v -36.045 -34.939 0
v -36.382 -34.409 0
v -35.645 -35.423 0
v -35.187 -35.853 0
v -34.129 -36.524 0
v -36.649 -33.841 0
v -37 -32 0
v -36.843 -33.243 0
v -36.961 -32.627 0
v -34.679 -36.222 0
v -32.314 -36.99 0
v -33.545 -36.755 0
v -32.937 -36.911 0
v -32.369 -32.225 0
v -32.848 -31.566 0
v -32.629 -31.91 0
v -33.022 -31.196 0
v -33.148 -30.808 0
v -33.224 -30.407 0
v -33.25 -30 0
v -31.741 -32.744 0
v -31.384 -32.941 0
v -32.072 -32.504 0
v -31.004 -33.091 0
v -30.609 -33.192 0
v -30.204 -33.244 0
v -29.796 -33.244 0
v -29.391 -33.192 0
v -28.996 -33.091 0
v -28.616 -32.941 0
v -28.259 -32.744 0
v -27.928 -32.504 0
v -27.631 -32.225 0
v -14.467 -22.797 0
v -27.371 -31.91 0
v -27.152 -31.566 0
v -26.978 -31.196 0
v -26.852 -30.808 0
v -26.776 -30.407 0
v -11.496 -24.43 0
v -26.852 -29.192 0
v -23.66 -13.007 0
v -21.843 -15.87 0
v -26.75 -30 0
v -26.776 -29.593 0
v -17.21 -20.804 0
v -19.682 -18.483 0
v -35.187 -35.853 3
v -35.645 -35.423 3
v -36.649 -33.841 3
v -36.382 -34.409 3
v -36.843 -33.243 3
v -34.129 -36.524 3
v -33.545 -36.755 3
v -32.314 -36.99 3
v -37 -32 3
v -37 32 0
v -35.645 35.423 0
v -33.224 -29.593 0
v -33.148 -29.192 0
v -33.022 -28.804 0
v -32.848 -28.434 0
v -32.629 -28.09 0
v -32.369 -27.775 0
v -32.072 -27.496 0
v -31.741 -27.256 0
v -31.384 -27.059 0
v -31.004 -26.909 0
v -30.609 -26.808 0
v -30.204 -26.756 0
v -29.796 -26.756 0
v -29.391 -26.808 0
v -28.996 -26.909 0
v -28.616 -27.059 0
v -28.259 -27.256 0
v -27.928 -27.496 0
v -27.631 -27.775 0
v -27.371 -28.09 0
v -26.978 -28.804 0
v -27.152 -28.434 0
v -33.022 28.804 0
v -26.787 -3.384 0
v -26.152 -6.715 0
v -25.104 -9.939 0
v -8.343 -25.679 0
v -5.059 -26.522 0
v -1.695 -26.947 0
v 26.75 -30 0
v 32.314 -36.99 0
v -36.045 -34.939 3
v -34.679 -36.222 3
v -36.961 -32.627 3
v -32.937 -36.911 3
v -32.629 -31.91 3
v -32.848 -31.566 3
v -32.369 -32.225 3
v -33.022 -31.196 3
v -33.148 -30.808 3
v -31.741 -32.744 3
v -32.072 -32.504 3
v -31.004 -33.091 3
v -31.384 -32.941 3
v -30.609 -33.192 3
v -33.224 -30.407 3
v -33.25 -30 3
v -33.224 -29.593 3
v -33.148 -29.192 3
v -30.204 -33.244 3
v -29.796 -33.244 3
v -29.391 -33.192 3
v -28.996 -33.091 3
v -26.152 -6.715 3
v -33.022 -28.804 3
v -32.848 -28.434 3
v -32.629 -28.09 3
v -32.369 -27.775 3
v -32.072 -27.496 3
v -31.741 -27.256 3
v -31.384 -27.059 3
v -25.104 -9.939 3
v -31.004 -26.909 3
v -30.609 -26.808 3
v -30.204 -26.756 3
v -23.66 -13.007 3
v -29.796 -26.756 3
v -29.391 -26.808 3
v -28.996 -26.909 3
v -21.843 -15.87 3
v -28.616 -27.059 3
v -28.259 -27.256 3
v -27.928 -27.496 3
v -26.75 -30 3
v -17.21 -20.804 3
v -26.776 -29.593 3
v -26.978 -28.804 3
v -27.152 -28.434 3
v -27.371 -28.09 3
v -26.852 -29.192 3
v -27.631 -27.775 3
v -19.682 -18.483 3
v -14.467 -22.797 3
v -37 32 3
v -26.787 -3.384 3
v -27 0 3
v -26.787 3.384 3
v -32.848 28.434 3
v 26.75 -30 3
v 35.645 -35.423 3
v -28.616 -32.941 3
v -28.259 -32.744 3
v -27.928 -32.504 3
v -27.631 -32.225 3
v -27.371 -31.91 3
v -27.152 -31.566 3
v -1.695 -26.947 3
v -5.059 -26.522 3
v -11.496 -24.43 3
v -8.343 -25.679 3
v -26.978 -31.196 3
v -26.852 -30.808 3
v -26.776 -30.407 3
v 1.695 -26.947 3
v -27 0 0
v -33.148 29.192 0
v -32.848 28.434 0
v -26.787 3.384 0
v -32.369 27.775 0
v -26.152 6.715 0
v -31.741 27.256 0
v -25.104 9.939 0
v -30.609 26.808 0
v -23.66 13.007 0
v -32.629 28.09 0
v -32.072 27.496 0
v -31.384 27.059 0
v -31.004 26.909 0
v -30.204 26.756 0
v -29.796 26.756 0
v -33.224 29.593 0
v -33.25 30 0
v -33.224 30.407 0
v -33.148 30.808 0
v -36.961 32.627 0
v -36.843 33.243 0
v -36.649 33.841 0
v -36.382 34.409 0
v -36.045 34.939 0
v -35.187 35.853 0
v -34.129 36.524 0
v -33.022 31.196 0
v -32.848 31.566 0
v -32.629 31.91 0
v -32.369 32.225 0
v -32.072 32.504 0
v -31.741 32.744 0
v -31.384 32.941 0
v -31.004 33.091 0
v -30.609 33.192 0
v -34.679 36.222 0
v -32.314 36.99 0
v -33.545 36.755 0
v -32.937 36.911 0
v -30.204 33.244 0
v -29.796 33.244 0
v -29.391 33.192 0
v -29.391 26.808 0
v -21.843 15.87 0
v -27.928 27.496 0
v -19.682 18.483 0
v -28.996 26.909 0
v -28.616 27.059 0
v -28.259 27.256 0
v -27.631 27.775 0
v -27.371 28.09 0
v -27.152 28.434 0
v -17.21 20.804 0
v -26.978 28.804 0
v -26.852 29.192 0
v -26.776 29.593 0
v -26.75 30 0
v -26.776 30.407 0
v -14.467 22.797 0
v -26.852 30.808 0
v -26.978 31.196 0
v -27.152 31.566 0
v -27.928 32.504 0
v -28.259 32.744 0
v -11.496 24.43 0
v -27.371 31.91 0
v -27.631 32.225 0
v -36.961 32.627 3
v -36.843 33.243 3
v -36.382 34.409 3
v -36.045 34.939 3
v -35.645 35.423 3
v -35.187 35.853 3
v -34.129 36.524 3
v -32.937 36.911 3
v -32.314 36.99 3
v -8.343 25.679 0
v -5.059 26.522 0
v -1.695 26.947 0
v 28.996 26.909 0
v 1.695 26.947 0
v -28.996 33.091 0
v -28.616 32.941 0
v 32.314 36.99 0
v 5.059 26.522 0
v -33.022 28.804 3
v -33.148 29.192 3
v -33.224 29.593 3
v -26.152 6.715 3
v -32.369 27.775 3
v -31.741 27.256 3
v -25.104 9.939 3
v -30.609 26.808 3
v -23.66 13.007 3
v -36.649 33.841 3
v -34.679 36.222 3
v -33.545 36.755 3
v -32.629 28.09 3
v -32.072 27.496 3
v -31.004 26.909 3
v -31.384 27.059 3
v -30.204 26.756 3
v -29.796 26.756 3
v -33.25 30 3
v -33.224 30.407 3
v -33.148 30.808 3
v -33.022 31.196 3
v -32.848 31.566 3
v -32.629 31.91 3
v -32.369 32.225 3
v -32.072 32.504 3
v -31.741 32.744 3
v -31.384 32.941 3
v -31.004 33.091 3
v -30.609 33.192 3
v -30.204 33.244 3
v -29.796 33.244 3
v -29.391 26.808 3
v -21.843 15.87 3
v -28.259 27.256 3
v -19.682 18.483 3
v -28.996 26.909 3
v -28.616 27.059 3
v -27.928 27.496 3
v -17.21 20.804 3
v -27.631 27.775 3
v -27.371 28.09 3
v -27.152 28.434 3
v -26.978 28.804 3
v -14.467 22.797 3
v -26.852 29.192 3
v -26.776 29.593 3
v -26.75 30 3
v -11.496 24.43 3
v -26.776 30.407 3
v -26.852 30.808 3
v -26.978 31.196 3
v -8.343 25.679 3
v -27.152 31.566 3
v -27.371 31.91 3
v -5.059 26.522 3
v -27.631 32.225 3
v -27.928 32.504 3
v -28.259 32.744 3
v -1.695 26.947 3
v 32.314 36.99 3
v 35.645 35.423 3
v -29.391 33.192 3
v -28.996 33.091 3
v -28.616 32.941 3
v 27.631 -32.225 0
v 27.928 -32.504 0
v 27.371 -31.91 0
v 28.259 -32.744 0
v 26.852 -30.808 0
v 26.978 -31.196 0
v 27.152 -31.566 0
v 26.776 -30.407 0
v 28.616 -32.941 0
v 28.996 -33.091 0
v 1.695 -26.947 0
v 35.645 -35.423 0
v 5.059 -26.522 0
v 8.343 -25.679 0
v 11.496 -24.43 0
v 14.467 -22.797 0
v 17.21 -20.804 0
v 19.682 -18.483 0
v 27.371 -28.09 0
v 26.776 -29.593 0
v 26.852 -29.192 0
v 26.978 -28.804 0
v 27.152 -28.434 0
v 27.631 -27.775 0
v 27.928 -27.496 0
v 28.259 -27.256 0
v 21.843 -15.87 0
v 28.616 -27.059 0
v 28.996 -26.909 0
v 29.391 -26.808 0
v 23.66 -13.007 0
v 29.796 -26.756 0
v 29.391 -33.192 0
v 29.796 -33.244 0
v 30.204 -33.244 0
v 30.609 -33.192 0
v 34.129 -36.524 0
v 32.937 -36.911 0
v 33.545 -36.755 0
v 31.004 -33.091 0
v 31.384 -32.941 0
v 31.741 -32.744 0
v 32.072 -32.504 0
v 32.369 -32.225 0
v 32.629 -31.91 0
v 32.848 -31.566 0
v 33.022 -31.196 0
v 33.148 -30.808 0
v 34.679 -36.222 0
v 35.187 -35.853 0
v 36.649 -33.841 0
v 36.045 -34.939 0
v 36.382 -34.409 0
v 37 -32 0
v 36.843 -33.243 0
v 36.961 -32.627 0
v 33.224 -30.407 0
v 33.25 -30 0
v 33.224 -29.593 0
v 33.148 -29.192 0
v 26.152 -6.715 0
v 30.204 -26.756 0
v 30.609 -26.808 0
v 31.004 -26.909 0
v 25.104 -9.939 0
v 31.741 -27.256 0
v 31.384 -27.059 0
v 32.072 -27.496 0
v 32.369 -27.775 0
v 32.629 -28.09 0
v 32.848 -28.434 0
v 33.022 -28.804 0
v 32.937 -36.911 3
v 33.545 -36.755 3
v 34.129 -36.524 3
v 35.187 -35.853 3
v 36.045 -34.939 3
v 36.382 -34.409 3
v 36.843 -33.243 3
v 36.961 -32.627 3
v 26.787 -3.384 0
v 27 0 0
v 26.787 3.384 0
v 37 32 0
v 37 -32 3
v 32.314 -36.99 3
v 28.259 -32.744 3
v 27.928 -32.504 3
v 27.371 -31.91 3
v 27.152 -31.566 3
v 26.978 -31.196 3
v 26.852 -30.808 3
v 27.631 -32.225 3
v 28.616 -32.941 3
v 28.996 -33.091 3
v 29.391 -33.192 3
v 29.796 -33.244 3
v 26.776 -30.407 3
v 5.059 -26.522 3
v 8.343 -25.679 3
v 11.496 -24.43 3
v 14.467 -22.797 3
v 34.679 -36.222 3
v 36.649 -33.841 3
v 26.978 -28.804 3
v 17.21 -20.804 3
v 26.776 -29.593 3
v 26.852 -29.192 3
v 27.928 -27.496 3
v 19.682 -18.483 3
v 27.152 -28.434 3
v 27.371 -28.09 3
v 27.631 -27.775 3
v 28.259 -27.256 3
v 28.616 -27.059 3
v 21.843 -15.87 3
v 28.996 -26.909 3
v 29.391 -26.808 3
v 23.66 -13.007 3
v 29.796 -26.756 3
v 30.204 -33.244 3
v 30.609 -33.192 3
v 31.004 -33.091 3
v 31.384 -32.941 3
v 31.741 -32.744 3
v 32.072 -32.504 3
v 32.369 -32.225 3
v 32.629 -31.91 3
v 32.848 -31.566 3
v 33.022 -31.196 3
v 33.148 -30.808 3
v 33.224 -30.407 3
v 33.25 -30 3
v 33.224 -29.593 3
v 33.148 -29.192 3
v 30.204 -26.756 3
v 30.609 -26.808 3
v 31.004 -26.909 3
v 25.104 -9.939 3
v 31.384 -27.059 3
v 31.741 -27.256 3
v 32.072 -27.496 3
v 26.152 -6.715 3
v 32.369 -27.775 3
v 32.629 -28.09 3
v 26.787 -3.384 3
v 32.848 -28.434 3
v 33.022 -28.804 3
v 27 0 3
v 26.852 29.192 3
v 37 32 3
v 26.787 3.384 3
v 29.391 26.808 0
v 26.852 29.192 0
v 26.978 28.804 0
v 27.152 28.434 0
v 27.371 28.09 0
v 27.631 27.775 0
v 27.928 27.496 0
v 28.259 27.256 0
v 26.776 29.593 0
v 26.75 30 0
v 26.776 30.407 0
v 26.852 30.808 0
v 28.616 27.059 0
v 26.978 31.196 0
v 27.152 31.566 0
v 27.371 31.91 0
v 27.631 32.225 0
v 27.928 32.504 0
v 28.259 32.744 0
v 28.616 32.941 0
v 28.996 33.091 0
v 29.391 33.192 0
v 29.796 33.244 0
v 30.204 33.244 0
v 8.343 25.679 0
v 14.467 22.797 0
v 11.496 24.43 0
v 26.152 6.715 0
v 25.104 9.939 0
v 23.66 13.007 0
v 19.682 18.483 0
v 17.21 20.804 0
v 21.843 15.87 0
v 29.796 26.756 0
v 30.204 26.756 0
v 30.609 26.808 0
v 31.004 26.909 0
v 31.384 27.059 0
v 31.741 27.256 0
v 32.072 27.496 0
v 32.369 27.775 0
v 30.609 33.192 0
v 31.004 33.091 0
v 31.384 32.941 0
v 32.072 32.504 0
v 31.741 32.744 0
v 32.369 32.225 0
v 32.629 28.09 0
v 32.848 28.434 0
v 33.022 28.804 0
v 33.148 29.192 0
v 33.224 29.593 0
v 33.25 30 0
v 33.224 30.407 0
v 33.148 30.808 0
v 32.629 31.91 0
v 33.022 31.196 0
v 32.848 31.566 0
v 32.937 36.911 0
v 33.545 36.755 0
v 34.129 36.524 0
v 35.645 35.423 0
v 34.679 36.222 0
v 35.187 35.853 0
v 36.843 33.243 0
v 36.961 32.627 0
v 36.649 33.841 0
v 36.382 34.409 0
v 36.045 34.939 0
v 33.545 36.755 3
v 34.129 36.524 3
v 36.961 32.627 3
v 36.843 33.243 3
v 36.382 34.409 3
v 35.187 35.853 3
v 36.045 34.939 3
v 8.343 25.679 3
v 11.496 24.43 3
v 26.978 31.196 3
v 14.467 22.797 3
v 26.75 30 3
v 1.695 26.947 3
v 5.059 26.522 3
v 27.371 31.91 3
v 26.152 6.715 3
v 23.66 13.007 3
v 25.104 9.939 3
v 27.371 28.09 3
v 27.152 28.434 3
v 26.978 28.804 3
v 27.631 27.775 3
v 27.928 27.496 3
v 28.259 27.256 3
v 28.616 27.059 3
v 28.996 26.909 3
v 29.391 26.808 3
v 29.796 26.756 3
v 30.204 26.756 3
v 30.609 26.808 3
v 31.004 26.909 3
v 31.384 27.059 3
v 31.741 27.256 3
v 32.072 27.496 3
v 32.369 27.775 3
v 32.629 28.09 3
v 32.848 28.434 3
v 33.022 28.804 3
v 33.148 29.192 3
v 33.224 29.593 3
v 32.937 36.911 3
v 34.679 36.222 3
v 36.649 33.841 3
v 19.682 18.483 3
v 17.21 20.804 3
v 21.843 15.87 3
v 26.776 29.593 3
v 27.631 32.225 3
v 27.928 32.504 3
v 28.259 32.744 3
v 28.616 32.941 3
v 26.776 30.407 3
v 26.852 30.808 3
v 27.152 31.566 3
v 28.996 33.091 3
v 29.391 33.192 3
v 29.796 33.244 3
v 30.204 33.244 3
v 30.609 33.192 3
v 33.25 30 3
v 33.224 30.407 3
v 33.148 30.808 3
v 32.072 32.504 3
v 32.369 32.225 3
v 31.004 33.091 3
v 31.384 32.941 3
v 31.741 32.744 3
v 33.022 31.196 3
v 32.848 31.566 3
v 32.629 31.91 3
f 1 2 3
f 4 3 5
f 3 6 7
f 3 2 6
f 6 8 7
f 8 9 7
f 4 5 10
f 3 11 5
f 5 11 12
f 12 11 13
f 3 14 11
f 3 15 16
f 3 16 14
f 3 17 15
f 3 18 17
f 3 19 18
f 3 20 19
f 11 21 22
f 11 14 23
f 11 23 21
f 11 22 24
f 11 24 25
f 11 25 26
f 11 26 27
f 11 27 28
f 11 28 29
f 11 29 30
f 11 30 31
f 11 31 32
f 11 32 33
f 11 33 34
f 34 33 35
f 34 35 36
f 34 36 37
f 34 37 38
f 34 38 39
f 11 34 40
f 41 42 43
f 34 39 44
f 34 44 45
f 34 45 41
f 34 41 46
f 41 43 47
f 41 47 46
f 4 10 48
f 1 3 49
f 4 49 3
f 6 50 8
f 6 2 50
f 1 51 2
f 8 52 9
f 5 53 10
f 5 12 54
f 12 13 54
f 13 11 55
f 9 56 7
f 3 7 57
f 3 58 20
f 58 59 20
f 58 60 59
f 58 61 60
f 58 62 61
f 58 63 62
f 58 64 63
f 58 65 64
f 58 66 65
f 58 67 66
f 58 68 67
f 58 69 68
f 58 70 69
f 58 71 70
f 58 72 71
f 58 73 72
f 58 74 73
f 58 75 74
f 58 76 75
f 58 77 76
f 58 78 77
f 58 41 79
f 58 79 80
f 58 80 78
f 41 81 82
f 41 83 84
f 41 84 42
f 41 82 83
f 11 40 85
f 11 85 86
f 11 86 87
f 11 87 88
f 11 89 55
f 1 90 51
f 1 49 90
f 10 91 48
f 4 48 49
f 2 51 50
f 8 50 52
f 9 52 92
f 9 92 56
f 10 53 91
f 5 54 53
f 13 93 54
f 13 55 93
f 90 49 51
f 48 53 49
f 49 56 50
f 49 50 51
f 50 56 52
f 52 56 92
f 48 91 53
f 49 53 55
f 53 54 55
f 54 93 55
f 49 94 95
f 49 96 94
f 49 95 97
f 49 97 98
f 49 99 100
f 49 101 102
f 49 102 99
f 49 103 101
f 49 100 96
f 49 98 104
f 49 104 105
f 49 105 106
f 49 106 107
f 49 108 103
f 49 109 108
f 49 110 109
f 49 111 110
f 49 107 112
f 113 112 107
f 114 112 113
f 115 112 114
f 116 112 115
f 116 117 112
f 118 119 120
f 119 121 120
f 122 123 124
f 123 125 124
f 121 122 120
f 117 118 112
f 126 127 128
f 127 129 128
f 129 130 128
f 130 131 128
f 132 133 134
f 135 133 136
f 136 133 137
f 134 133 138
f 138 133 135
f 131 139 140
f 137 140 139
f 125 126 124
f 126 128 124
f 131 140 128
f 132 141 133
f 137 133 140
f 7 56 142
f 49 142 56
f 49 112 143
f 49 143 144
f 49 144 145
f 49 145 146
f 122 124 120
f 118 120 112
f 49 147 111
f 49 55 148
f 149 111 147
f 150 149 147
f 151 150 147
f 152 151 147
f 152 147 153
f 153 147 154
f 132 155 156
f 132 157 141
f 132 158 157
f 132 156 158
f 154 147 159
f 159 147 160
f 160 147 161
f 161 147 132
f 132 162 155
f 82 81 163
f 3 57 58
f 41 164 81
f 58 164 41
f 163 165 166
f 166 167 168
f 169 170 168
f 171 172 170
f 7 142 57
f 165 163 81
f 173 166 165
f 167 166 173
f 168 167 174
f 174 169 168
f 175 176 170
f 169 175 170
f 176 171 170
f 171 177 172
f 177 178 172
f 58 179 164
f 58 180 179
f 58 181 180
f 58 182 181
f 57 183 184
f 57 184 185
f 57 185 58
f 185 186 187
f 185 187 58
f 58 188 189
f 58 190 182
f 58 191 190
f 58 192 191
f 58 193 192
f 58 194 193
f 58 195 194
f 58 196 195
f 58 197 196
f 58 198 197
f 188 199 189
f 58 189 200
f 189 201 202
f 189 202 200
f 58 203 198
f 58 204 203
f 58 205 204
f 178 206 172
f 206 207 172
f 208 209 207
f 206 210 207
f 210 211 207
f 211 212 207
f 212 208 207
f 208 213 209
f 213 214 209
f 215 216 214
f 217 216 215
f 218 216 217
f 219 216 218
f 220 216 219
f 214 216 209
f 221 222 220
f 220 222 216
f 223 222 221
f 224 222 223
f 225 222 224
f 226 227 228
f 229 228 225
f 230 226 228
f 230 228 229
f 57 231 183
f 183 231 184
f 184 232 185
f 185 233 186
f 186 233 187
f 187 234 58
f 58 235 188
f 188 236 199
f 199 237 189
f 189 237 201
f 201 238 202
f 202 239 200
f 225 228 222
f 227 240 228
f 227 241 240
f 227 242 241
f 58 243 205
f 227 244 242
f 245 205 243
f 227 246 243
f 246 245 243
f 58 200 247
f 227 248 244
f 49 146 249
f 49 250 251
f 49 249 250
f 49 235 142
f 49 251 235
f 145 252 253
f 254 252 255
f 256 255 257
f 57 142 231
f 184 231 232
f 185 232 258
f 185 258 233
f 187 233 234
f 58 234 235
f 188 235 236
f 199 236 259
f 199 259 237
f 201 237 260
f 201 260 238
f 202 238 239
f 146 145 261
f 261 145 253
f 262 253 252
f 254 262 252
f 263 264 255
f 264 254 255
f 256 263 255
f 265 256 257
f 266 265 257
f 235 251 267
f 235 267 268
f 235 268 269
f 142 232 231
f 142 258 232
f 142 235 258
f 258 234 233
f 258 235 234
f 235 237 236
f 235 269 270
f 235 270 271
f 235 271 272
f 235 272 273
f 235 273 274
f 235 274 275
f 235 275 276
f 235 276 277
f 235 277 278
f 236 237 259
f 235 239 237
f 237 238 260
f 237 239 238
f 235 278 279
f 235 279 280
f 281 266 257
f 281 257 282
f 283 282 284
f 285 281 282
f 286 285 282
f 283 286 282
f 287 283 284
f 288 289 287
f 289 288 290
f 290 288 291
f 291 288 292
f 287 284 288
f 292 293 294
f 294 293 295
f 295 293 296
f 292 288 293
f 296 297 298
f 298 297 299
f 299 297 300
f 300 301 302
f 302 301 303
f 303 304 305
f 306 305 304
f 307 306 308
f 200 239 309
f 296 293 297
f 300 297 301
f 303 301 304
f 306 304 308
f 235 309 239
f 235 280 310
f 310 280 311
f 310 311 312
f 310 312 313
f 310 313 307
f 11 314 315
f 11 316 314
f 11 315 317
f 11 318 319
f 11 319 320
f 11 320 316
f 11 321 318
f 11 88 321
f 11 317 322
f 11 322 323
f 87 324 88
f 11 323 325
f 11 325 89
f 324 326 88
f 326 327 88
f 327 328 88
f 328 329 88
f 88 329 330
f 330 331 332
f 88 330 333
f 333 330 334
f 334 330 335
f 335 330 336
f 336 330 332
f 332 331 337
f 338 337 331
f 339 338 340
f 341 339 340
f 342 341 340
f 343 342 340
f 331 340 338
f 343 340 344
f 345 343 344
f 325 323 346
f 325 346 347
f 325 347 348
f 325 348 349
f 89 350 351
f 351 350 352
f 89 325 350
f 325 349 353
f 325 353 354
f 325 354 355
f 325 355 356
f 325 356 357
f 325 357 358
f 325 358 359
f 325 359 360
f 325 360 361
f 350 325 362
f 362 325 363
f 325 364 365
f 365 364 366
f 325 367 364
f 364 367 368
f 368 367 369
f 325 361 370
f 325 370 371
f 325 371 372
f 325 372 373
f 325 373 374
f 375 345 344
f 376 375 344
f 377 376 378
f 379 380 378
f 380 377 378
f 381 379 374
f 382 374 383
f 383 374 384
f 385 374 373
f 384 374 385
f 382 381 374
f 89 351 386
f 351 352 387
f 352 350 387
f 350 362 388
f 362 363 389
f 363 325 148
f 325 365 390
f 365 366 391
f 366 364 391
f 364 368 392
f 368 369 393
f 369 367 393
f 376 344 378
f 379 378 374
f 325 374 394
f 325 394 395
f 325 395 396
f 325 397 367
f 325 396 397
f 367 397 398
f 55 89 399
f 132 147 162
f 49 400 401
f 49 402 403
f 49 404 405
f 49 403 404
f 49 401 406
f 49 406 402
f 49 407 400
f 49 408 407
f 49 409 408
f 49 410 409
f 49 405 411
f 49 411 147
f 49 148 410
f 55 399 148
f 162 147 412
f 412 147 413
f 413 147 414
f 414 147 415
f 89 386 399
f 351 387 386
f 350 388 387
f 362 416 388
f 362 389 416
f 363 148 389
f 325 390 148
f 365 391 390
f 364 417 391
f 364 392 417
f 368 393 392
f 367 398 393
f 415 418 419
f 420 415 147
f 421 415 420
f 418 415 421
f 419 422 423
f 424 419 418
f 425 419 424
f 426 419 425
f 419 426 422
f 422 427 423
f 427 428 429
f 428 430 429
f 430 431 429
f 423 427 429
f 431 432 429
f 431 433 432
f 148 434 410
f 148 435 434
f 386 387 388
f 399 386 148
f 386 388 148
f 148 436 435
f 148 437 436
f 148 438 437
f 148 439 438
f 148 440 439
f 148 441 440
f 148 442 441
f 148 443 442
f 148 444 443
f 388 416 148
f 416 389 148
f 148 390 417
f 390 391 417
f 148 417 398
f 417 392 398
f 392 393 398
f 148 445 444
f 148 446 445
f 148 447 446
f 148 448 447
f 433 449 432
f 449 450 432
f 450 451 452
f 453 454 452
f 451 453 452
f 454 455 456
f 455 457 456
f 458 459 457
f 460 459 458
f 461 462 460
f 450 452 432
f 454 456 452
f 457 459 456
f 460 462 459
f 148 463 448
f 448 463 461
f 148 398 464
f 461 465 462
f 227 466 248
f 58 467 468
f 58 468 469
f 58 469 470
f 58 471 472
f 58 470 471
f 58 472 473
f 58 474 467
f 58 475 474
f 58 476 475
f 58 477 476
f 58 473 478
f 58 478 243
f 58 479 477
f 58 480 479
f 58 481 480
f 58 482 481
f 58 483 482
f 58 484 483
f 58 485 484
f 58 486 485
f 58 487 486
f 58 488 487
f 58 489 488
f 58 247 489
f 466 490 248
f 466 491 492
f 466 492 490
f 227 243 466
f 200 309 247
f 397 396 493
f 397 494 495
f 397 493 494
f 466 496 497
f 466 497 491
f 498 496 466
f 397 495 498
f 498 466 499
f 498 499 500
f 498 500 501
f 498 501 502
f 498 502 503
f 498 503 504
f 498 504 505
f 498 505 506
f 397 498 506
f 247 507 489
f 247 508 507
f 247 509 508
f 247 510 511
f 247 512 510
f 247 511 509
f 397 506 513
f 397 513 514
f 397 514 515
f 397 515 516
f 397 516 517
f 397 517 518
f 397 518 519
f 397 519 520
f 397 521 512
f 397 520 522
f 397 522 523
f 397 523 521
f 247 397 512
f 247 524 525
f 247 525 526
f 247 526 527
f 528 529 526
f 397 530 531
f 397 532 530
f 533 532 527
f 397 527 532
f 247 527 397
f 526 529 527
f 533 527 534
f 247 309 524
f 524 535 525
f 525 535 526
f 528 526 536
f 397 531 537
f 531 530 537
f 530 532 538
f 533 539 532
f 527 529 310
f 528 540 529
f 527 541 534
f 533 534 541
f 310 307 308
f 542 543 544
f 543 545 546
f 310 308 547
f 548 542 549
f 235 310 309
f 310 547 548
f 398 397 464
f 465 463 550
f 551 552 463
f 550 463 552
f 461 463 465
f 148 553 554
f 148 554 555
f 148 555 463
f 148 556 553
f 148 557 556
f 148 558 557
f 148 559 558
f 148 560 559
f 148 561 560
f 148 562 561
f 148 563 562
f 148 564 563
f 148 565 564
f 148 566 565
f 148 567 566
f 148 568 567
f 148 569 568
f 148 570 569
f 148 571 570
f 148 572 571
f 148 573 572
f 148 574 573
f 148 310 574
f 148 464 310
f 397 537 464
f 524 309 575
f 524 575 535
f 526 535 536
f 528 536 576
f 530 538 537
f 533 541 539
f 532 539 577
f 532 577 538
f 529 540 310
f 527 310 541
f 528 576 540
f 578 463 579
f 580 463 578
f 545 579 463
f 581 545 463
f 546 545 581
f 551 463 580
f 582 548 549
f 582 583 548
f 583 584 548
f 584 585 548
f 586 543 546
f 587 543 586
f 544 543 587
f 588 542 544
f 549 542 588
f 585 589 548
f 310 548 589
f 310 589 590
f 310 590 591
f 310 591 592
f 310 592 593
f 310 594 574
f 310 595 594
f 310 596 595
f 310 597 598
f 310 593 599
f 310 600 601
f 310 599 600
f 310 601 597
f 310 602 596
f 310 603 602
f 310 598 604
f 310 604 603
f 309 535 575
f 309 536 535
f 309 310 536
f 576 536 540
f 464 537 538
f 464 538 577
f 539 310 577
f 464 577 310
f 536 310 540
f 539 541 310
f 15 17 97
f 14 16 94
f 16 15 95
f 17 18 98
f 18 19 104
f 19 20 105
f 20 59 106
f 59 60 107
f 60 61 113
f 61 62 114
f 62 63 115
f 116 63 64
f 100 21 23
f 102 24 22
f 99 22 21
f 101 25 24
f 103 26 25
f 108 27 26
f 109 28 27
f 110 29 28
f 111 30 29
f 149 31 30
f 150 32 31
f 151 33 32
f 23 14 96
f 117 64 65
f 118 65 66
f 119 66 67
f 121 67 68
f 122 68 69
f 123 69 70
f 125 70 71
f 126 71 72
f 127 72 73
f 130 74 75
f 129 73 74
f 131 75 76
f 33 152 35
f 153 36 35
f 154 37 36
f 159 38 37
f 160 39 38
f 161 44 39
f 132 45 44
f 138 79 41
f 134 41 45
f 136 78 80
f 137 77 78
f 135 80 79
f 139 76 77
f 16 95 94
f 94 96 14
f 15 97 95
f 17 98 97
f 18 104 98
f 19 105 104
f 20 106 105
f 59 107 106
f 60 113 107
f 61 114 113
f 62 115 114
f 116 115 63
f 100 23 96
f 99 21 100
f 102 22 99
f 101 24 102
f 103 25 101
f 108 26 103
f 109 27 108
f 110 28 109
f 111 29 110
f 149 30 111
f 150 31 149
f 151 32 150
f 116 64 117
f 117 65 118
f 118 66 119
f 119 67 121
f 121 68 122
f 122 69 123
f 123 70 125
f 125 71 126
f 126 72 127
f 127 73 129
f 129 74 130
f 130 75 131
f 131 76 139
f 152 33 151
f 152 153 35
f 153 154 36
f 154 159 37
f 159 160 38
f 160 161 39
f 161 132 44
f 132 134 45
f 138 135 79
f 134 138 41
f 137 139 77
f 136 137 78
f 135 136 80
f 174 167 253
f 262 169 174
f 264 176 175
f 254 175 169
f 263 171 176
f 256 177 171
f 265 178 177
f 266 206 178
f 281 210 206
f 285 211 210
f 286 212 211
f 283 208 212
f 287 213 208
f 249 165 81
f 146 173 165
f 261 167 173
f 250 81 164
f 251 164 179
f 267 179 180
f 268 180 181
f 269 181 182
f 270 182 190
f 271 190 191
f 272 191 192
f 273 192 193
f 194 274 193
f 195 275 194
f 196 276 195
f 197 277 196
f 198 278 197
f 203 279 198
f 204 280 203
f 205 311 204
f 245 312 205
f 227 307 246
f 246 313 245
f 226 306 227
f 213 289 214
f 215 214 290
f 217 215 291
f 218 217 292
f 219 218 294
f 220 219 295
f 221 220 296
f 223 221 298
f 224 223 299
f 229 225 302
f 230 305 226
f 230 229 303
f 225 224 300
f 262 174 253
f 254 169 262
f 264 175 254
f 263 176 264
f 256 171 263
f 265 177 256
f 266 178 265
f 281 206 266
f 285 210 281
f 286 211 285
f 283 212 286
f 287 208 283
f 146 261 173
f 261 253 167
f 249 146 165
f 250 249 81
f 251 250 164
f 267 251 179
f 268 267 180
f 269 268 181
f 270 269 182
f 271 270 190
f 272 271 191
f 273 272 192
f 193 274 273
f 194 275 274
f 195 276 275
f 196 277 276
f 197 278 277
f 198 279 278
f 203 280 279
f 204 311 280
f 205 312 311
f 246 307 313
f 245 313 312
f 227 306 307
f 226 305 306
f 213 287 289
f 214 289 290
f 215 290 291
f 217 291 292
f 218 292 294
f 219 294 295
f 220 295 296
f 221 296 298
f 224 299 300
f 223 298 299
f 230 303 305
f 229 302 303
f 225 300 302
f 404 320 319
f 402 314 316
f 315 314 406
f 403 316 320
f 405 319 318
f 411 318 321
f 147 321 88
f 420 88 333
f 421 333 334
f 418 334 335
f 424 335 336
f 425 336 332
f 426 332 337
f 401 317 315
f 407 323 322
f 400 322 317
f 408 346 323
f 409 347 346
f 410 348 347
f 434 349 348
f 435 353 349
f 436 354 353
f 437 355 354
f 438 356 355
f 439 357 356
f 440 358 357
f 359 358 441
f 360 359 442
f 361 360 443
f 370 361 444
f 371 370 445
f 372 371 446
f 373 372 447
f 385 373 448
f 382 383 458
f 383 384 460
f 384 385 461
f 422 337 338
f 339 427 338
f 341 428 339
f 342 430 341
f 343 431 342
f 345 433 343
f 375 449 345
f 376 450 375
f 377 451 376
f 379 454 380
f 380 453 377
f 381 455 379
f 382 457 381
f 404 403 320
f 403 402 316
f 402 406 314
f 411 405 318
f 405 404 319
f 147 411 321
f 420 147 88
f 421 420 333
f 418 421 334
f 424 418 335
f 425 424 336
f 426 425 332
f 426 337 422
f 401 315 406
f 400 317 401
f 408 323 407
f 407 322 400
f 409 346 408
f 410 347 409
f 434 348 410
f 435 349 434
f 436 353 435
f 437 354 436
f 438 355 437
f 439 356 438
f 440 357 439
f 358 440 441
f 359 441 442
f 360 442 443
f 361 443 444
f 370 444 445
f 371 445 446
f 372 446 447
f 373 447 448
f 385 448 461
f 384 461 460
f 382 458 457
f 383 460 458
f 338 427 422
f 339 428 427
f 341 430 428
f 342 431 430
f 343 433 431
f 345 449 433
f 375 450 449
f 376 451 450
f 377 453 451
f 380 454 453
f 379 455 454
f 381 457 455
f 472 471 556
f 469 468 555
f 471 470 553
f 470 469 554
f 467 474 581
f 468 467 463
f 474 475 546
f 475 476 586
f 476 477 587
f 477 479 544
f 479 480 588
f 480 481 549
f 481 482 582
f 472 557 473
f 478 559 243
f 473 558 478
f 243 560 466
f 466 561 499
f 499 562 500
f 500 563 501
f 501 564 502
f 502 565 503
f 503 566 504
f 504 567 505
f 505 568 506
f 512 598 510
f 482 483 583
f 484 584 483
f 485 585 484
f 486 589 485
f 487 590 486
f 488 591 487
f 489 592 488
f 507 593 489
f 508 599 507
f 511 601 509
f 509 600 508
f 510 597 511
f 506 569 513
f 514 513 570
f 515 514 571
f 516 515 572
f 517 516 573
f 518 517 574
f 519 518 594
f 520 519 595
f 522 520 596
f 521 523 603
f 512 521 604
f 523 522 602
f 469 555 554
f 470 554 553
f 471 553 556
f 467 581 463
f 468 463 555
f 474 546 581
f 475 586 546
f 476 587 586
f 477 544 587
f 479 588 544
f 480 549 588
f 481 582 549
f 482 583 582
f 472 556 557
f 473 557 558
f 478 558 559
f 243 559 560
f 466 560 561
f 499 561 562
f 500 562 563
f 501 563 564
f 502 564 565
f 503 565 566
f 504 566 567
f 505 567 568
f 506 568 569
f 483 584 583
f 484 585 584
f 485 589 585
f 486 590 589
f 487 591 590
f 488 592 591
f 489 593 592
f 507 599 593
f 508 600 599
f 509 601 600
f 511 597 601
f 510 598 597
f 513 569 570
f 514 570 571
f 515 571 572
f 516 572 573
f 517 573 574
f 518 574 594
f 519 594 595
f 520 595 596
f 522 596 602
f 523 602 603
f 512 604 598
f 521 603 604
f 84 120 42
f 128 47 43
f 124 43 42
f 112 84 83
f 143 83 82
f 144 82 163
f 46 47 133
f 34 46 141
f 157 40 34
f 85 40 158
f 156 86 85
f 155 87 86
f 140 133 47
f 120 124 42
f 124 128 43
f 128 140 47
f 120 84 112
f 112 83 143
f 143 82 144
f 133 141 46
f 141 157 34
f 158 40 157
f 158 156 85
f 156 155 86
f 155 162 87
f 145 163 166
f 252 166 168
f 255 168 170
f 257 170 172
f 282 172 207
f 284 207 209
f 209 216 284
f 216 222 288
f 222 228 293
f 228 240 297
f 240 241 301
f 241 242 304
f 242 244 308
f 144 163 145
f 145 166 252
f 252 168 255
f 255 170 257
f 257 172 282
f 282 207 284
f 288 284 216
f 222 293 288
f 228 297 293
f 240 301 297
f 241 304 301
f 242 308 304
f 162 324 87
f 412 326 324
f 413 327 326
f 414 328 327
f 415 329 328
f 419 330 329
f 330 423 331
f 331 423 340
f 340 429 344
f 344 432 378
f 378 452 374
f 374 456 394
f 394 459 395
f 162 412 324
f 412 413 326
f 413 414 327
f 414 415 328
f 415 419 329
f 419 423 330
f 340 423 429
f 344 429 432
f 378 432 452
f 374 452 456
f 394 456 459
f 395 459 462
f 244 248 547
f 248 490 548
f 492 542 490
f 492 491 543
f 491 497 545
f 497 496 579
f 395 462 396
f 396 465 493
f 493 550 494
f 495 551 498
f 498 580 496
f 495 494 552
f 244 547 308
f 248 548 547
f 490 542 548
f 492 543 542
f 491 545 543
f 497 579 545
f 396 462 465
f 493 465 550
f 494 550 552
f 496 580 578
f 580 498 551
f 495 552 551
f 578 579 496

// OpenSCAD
$fn = 50;

difference() {
	union() {
		hull() {
			translate(v = [-32.0, 32.0, 0]) {
				cylinder(h = 3, r = 5);
			}
			translate(v = [32.0, 32.0, 0]) {
				cylinder(h = 3, r = 5);
			}
			translate(v = [-32.0, -32.0, 0]) {
				cylinder(h = 3, r = 5);
			}
			translate(v = [32.0, -32.0, 0]) {
				cylinder(h = 3, r = 5);
			}
		}
	}
	union() {
		translate(v = [-30.0, -30.0, -100.0]) {
			cylinder(h = 200, r = 3.25);
		}
		translate(v = [-30.0, 30.0, -100.0]) {
			cylinder(h = 200, r = 3.25);
		}
		translate(v = [30.0, -30.0, -100.0]) {
			cylinder(h = 200, r = 3.25);
		}
		translate(v = [30.0, 30.0, -100.0]) {
			cylinder(h = 200, r = 3.25);
		}
		translate(v = [-30.0, -30.0, -100.0]) {
			cylinder(h = 200, r = 1.8);
		}
		translate(v = [-30.0, 30.0, -100.0]) {
			cylinder(h = 200, r = 1.8);
		}
		translate(v = [30.0, -30.0, -100.0]) {
			cylinder(h = 200, r = 1.8);
		}
		translate(v = [30.0, 30.0, -100.0]) {
			cylinder(h = 200, r = 1.8);
		}
		cylinder(h = 3, r = 27.0);
	}
}
